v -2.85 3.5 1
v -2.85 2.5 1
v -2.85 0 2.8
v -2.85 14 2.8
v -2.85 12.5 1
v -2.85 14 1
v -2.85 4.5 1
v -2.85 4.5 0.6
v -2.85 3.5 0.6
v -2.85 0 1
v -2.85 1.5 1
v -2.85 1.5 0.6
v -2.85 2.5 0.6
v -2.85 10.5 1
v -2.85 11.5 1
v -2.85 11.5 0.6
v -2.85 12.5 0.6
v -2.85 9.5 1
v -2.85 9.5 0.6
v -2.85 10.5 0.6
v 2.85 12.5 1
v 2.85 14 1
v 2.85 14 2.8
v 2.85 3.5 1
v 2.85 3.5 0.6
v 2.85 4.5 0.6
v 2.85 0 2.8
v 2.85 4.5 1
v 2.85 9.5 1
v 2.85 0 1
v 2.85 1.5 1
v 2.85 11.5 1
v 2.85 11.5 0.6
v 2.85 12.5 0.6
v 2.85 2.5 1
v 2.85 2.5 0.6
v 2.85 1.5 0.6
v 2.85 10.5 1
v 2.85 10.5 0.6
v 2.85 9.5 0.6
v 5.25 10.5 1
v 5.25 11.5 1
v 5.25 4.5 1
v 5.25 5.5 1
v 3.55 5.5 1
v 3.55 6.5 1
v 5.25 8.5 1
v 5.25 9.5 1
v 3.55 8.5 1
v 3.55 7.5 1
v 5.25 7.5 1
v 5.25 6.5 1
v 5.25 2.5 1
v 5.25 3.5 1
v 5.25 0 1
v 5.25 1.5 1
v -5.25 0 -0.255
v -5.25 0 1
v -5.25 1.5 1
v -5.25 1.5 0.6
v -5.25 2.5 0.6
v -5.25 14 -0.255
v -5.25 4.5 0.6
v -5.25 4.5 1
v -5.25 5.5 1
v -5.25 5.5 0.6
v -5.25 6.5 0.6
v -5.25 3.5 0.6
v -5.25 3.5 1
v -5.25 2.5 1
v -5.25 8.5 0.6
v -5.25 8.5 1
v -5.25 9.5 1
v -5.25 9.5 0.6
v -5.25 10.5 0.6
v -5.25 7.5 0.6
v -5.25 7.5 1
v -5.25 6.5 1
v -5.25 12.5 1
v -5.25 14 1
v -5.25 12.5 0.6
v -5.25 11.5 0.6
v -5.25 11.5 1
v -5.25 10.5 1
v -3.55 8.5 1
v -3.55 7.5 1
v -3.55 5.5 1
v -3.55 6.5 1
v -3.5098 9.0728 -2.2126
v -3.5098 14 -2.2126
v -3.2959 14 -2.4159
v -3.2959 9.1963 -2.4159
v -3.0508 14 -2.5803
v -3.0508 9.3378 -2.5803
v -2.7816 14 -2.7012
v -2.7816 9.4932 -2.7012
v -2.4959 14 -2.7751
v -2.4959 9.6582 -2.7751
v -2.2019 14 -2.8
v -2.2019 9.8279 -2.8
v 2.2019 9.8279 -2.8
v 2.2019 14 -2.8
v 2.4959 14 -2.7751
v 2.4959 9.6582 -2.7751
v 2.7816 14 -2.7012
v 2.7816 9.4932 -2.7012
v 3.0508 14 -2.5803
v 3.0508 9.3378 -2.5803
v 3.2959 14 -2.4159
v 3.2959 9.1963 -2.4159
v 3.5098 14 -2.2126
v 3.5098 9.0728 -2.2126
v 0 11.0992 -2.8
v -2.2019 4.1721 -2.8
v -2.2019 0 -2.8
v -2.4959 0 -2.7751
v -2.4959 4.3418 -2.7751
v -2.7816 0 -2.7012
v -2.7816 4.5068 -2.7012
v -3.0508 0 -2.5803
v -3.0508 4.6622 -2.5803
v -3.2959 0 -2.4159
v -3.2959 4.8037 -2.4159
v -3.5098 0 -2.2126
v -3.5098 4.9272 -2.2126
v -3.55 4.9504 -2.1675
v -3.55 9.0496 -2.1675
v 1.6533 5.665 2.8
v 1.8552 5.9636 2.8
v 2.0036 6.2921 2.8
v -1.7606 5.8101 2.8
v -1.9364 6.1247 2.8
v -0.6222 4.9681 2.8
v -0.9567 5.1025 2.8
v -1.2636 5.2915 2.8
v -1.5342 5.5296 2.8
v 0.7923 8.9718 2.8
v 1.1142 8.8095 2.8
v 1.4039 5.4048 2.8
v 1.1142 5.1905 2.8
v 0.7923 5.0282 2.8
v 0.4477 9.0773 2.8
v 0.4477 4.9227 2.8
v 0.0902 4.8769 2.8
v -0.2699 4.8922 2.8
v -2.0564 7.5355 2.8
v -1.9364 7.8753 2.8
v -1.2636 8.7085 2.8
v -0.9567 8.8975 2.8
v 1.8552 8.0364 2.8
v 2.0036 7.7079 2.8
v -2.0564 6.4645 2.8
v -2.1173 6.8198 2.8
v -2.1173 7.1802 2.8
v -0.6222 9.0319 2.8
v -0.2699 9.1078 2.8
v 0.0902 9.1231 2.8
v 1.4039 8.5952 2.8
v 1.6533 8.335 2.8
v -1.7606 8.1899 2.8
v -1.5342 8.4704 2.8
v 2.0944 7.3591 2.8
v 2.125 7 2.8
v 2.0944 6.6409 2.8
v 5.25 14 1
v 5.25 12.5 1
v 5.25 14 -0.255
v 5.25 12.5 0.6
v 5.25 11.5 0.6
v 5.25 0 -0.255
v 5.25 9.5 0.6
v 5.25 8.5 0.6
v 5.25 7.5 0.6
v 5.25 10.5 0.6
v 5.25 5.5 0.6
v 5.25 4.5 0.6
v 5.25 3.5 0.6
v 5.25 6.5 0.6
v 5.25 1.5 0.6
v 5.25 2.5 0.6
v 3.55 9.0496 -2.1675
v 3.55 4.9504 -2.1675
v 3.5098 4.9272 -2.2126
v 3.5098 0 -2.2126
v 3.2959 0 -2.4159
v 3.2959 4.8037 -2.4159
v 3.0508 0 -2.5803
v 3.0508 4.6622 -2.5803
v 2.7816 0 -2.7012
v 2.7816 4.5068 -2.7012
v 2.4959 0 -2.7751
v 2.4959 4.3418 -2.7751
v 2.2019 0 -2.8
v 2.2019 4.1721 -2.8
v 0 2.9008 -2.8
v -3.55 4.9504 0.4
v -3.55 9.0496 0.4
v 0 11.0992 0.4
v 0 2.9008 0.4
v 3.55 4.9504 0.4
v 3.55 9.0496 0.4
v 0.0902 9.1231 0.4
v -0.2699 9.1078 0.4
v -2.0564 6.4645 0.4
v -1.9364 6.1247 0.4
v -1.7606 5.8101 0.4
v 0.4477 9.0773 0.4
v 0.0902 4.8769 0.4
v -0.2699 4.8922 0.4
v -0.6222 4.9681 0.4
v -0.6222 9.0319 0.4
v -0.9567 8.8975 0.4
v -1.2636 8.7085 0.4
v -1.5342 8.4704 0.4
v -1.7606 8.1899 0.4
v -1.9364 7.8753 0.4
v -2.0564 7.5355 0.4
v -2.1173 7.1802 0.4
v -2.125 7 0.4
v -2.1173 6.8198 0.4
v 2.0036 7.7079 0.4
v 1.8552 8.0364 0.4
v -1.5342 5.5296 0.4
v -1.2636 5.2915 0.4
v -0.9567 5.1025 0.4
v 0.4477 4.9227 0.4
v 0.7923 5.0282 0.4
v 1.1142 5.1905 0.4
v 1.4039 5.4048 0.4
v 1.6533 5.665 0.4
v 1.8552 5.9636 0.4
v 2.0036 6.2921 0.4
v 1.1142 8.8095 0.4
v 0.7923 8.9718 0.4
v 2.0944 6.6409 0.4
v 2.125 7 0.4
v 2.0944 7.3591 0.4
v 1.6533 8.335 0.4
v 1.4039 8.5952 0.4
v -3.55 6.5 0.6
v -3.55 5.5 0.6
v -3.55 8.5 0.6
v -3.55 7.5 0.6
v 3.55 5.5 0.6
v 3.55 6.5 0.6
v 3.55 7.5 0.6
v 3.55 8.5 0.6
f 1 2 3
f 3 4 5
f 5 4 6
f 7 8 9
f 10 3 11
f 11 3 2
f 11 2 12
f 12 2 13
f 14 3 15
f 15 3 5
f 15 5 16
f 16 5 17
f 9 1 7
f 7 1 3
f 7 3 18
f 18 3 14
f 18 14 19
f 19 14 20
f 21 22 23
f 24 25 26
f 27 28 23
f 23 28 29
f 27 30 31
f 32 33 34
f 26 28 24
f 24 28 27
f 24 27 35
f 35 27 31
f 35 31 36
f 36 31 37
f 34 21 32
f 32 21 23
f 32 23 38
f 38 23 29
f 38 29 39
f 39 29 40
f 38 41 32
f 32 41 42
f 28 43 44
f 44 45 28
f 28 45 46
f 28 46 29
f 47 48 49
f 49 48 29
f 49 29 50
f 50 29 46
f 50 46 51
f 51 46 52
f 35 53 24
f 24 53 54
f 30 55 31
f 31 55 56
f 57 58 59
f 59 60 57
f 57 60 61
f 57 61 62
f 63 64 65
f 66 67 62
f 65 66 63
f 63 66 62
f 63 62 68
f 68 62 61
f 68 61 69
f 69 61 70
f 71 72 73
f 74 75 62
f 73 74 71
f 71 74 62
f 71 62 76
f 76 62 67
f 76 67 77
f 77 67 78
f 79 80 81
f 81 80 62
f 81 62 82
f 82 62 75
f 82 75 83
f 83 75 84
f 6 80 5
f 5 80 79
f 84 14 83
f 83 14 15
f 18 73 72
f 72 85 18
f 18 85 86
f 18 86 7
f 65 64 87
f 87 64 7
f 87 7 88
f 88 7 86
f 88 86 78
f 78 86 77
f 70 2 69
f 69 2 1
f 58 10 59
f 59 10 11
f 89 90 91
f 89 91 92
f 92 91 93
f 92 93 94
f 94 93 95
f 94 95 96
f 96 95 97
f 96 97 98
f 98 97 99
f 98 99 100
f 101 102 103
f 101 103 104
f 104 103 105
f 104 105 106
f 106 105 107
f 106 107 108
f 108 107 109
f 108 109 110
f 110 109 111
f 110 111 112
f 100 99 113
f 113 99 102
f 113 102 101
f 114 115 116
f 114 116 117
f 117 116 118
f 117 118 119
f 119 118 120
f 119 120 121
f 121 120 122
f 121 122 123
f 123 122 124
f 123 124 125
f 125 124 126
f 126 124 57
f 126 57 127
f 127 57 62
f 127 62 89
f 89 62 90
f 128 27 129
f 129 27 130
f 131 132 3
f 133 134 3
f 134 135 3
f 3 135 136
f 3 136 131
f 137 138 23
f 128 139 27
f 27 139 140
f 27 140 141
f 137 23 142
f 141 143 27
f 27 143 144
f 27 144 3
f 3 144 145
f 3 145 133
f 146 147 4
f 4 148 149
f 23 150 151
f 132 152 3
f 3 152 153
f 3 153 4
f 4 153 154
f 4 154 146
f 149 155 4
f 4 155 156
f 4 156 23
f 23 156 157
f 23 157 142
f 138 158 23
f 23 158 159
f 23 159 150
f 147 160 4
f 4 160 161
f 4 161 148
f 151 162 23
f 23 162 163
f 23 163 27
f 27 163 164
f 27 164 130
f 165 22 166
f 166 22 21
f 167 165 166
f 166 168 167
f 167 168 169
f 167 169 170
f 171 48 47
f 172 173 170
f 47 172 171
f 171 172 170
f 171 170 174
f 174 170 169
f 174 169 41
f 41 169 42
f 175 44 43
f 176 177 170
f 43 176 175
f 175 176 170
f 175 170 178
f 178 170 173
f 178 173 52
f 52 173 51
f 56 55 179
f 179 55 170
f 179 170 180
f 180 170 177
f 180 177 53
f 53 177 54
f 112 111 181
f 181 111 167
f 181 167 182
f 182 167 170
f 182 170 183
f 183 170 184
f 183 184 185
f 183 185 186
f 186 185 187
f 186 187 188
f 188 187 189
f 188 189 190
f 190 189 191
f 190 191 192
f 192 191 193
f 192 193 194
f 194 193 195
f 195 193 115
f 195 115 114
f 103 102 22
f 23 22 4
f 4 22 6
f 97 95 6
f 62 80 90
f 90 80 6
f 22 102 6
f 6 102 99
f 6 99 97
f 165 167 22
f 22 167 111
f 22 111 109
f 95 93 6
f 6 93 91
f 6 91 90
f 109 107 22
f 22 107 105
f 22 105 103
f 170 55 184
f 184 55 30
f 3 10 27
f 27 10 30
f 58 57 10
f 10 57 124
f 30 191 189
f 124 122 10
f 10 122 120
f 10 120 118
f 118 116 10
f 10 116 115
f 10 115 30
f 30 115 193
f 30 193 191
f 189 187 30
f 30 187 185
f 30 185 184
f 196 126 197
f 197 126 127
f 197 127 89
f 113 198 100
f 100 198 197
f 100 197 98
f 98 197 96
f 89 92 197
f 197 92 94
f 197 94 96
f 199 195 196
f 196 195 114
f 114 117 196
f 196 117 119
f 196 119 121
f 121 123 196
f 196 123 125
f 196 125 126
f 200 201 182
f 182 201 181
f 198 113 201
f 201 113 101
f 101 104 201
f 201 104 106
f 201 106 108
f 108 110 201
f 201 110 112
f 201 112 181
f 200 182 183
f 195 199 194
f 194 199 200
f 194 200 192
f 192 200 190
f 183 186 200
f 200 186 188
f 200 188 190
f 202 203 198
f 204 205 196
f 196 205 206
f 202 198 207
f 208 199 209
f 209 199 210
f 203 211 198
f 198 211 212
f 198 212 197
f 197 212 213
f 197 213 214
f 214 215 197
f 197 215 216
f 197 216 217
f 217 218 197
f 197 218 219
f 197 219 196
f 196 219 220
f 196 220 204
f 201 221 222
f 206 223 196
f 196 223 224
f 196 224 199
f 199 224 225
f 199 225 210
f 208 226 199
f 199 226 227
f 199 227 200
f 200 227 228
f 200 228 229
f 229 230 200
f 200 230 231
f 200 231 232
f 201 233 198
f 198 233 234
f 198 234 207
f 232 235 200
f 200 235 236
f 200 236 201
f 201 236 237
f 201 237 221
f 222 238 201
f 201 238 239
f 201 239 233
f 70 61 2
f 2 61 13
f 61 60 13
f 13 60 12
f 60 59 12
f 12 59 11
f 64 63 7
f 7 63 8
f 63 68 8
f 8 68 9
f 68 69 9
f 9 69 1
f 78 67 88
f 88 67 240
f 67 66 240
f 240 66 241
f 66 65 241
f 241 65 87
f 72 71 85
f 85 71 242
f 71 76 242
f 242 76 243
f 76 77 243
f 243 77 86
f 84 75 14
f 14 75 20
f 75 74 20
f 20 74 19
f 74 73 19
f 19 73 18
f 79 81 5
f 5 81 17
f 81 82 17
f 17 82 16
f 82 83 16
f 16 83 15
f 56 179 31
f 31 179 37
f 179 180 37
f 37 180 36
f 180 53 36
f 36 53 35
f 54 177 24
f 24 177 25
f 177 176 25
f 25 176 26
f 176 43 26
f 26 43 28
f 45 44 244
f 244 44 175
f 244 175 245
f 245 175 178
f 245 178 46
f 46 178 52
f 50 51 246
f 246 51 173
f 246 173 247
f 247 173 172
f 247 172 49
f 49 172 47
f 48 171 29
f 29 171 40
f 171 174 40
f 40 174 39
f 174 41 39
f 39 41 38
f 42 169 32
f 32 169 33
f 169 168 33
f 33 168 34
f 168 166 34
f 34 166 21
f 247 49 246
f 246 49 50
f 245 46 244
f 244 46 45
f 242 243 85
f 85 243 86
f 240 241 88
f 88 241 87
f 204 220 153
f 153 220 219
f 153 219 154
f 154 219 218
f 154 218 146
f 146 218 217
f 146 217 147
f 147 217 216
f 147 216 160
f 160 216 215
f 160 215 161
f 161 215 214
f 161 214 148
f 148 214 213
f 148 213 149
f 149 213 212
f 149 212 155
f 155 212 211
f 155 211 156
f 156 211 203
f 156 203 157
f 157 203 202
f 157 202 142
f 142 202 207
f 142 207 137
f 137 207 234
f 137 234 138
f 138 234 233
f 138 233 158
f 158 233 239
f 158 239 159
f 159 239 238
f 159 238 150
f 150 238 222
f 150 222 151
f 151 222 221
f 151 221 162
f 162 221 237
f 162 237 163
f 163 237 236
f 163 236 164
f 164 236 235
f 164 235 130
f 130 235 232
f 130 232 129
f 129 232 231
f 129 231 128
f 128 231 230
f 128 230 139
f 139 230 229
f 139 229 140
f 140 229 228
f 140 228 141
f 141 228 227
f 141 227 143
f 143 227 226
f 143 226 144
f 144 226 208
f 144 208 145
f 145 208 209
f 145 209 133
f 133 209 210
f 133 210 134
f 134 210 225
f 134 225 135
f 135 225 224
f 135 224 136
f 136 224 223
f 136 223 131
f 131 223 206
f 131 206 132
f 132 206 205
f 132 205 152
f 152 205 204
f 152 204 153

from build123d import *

# Parameters (mm, degrees)
BOSS_EXTRUDE1_DEPTH = 14
CUT_EXTRUDE1_DEPTH  = 3.2
SKETCH4_W           = 0.4
SKETCH4_H           = 1
CUT_EXTRUDE3_DEPTH  = 17.414932226
BOSS_EXTRUDE2_START = -3.2
BOSS_EXTRUDE2_DEPTH = 0.6
SKETCH3_R           = 2.125
CUT_EXTRUDE2_DEPTH  = 16.966292619


with BuildPart() as part:
    # Sketch1 → Boss-Extrude1 (new body)
    with BuildSketch(Plane(origin=(0, 0, 0), x_dir=(1, 0, 0), z_dir=(0, 1, 0))):
        with BuildLine():
            Line((-3.509834179, 2.212636718), (-5.25, 0.254950169))
            Line((-5.25, 0.254950169), (-5.25, -1))
            Line((-5.25, -1), (-2.85, -1))
            Line((-2.85, -1), (-2.85, -2.8))
            Line((-2.85, -2.8), (2.85, -2.8))
            Line((2.85, -2.8), (2.85, -1))
            Line((2.85, -1), (5.25, -1))
            Line((5.25, -1), (5.25, 0.254950169))
            Line((5.25, 0.254950169), (3.509834179, 2.212636718))
            ThreePointArc((3.509834179, 2.212636718), (2.918765962, 2.646420098), (2.201867871, 2.8))
            Line((2.201867871, 2.8), (-2.201867871, 2.8))
            ThreePointArc((-2.201867871, 2.8), (-2.918765962, 2.646420098), (-3.509834179, 2.212636718))
        make_face()
    extrude(amount=BOSS_EXTRUDE1_DEPTH)

    # Sketch2 → Cut-Extrude1 (cut)
    with BuildSketch(Plane(origin=(0, 0, -2.8), x_dir=(-1, 0, 0), z_dir=(0, 0, -1))):
        Polygon((-3.55, 4.950406544), (0, 2.900813089), (3.55, 4.950406544), (3.55, 9.049593456), (0, 11.099186911), (-3.55, 9.049593456), align=None)
    extrude(amount=-CUT_EXTRUDE1_DEPTH, mode=Mode.SUBTRACT)

    # Sketch4 → Cut-Extrude3 (cut, through all)
    with BuildSketch(Plane.ZY.offset(2.85)):
        with Locations((0.8, 12)):
            Rectangle(SKETCH4_W, SKETCH4_H)
        with Locations((0.8, 10)):
            Rectangle(SKETCH4_W, SKETCH4_H)
        with Locations((0.8, 8)):
            Rectangle(SKETCH4_W, SKETCH4_H)
        with Locations((0.8, 6)):
            Rectangle(SKETCH4_W, SKETCH4_H)
        with Locations((0.8, 4)):
            Rectangle(SKETCH4_W, SKETCH4_H)
        with Locations((0.8, 2)):
            Rectangle(SKETCH4_W, SKETCH4_H)
    cut_extrude3 = extrude(amount=CUT_EXTRUDE3_DEPTH, mode=Mode.SUBTRACT)

    # Mirror1: Cut-Extrude3 across plane
    add(cut_extrude3.mirror(Plane(origin=(0, 0, 0), x_dir=(0, 0, 1), z_dir=(1, 0, 0))), mode=Mode.SUBTRACT)

    # Sketch2<2> → Boss-Extrude2 (add)
    with BuildSketch(Plane(origin=(0, 0, -2.8), x_dir=(-1, 0, 0), z_dir=(0, 0, -1)).offset(BOSS_EXTRUDE2_START)):
        Polygon((-3.55, 4.950406544), (0, 2.900813089), (3.55, 4.950406544), (3.55, 9.049593456), (0, 11.099186911), (-3.55, 9.049593456), align=None)
    extrude(amount=-BOSS_EXTRUDE2_DEPTH)

    # Sketch3 → Cut-Extrude2 (cut, through all)
    with BuildSketch(Plane.XY.offset(2.8)):
        with Locations((0, 7)):
            Circle(SKETCH3_R)
    extrude(amount=-CUT_EXTRUDE2_DEPTH, mode=Mode.SUBTRACT)


solid = part.part
